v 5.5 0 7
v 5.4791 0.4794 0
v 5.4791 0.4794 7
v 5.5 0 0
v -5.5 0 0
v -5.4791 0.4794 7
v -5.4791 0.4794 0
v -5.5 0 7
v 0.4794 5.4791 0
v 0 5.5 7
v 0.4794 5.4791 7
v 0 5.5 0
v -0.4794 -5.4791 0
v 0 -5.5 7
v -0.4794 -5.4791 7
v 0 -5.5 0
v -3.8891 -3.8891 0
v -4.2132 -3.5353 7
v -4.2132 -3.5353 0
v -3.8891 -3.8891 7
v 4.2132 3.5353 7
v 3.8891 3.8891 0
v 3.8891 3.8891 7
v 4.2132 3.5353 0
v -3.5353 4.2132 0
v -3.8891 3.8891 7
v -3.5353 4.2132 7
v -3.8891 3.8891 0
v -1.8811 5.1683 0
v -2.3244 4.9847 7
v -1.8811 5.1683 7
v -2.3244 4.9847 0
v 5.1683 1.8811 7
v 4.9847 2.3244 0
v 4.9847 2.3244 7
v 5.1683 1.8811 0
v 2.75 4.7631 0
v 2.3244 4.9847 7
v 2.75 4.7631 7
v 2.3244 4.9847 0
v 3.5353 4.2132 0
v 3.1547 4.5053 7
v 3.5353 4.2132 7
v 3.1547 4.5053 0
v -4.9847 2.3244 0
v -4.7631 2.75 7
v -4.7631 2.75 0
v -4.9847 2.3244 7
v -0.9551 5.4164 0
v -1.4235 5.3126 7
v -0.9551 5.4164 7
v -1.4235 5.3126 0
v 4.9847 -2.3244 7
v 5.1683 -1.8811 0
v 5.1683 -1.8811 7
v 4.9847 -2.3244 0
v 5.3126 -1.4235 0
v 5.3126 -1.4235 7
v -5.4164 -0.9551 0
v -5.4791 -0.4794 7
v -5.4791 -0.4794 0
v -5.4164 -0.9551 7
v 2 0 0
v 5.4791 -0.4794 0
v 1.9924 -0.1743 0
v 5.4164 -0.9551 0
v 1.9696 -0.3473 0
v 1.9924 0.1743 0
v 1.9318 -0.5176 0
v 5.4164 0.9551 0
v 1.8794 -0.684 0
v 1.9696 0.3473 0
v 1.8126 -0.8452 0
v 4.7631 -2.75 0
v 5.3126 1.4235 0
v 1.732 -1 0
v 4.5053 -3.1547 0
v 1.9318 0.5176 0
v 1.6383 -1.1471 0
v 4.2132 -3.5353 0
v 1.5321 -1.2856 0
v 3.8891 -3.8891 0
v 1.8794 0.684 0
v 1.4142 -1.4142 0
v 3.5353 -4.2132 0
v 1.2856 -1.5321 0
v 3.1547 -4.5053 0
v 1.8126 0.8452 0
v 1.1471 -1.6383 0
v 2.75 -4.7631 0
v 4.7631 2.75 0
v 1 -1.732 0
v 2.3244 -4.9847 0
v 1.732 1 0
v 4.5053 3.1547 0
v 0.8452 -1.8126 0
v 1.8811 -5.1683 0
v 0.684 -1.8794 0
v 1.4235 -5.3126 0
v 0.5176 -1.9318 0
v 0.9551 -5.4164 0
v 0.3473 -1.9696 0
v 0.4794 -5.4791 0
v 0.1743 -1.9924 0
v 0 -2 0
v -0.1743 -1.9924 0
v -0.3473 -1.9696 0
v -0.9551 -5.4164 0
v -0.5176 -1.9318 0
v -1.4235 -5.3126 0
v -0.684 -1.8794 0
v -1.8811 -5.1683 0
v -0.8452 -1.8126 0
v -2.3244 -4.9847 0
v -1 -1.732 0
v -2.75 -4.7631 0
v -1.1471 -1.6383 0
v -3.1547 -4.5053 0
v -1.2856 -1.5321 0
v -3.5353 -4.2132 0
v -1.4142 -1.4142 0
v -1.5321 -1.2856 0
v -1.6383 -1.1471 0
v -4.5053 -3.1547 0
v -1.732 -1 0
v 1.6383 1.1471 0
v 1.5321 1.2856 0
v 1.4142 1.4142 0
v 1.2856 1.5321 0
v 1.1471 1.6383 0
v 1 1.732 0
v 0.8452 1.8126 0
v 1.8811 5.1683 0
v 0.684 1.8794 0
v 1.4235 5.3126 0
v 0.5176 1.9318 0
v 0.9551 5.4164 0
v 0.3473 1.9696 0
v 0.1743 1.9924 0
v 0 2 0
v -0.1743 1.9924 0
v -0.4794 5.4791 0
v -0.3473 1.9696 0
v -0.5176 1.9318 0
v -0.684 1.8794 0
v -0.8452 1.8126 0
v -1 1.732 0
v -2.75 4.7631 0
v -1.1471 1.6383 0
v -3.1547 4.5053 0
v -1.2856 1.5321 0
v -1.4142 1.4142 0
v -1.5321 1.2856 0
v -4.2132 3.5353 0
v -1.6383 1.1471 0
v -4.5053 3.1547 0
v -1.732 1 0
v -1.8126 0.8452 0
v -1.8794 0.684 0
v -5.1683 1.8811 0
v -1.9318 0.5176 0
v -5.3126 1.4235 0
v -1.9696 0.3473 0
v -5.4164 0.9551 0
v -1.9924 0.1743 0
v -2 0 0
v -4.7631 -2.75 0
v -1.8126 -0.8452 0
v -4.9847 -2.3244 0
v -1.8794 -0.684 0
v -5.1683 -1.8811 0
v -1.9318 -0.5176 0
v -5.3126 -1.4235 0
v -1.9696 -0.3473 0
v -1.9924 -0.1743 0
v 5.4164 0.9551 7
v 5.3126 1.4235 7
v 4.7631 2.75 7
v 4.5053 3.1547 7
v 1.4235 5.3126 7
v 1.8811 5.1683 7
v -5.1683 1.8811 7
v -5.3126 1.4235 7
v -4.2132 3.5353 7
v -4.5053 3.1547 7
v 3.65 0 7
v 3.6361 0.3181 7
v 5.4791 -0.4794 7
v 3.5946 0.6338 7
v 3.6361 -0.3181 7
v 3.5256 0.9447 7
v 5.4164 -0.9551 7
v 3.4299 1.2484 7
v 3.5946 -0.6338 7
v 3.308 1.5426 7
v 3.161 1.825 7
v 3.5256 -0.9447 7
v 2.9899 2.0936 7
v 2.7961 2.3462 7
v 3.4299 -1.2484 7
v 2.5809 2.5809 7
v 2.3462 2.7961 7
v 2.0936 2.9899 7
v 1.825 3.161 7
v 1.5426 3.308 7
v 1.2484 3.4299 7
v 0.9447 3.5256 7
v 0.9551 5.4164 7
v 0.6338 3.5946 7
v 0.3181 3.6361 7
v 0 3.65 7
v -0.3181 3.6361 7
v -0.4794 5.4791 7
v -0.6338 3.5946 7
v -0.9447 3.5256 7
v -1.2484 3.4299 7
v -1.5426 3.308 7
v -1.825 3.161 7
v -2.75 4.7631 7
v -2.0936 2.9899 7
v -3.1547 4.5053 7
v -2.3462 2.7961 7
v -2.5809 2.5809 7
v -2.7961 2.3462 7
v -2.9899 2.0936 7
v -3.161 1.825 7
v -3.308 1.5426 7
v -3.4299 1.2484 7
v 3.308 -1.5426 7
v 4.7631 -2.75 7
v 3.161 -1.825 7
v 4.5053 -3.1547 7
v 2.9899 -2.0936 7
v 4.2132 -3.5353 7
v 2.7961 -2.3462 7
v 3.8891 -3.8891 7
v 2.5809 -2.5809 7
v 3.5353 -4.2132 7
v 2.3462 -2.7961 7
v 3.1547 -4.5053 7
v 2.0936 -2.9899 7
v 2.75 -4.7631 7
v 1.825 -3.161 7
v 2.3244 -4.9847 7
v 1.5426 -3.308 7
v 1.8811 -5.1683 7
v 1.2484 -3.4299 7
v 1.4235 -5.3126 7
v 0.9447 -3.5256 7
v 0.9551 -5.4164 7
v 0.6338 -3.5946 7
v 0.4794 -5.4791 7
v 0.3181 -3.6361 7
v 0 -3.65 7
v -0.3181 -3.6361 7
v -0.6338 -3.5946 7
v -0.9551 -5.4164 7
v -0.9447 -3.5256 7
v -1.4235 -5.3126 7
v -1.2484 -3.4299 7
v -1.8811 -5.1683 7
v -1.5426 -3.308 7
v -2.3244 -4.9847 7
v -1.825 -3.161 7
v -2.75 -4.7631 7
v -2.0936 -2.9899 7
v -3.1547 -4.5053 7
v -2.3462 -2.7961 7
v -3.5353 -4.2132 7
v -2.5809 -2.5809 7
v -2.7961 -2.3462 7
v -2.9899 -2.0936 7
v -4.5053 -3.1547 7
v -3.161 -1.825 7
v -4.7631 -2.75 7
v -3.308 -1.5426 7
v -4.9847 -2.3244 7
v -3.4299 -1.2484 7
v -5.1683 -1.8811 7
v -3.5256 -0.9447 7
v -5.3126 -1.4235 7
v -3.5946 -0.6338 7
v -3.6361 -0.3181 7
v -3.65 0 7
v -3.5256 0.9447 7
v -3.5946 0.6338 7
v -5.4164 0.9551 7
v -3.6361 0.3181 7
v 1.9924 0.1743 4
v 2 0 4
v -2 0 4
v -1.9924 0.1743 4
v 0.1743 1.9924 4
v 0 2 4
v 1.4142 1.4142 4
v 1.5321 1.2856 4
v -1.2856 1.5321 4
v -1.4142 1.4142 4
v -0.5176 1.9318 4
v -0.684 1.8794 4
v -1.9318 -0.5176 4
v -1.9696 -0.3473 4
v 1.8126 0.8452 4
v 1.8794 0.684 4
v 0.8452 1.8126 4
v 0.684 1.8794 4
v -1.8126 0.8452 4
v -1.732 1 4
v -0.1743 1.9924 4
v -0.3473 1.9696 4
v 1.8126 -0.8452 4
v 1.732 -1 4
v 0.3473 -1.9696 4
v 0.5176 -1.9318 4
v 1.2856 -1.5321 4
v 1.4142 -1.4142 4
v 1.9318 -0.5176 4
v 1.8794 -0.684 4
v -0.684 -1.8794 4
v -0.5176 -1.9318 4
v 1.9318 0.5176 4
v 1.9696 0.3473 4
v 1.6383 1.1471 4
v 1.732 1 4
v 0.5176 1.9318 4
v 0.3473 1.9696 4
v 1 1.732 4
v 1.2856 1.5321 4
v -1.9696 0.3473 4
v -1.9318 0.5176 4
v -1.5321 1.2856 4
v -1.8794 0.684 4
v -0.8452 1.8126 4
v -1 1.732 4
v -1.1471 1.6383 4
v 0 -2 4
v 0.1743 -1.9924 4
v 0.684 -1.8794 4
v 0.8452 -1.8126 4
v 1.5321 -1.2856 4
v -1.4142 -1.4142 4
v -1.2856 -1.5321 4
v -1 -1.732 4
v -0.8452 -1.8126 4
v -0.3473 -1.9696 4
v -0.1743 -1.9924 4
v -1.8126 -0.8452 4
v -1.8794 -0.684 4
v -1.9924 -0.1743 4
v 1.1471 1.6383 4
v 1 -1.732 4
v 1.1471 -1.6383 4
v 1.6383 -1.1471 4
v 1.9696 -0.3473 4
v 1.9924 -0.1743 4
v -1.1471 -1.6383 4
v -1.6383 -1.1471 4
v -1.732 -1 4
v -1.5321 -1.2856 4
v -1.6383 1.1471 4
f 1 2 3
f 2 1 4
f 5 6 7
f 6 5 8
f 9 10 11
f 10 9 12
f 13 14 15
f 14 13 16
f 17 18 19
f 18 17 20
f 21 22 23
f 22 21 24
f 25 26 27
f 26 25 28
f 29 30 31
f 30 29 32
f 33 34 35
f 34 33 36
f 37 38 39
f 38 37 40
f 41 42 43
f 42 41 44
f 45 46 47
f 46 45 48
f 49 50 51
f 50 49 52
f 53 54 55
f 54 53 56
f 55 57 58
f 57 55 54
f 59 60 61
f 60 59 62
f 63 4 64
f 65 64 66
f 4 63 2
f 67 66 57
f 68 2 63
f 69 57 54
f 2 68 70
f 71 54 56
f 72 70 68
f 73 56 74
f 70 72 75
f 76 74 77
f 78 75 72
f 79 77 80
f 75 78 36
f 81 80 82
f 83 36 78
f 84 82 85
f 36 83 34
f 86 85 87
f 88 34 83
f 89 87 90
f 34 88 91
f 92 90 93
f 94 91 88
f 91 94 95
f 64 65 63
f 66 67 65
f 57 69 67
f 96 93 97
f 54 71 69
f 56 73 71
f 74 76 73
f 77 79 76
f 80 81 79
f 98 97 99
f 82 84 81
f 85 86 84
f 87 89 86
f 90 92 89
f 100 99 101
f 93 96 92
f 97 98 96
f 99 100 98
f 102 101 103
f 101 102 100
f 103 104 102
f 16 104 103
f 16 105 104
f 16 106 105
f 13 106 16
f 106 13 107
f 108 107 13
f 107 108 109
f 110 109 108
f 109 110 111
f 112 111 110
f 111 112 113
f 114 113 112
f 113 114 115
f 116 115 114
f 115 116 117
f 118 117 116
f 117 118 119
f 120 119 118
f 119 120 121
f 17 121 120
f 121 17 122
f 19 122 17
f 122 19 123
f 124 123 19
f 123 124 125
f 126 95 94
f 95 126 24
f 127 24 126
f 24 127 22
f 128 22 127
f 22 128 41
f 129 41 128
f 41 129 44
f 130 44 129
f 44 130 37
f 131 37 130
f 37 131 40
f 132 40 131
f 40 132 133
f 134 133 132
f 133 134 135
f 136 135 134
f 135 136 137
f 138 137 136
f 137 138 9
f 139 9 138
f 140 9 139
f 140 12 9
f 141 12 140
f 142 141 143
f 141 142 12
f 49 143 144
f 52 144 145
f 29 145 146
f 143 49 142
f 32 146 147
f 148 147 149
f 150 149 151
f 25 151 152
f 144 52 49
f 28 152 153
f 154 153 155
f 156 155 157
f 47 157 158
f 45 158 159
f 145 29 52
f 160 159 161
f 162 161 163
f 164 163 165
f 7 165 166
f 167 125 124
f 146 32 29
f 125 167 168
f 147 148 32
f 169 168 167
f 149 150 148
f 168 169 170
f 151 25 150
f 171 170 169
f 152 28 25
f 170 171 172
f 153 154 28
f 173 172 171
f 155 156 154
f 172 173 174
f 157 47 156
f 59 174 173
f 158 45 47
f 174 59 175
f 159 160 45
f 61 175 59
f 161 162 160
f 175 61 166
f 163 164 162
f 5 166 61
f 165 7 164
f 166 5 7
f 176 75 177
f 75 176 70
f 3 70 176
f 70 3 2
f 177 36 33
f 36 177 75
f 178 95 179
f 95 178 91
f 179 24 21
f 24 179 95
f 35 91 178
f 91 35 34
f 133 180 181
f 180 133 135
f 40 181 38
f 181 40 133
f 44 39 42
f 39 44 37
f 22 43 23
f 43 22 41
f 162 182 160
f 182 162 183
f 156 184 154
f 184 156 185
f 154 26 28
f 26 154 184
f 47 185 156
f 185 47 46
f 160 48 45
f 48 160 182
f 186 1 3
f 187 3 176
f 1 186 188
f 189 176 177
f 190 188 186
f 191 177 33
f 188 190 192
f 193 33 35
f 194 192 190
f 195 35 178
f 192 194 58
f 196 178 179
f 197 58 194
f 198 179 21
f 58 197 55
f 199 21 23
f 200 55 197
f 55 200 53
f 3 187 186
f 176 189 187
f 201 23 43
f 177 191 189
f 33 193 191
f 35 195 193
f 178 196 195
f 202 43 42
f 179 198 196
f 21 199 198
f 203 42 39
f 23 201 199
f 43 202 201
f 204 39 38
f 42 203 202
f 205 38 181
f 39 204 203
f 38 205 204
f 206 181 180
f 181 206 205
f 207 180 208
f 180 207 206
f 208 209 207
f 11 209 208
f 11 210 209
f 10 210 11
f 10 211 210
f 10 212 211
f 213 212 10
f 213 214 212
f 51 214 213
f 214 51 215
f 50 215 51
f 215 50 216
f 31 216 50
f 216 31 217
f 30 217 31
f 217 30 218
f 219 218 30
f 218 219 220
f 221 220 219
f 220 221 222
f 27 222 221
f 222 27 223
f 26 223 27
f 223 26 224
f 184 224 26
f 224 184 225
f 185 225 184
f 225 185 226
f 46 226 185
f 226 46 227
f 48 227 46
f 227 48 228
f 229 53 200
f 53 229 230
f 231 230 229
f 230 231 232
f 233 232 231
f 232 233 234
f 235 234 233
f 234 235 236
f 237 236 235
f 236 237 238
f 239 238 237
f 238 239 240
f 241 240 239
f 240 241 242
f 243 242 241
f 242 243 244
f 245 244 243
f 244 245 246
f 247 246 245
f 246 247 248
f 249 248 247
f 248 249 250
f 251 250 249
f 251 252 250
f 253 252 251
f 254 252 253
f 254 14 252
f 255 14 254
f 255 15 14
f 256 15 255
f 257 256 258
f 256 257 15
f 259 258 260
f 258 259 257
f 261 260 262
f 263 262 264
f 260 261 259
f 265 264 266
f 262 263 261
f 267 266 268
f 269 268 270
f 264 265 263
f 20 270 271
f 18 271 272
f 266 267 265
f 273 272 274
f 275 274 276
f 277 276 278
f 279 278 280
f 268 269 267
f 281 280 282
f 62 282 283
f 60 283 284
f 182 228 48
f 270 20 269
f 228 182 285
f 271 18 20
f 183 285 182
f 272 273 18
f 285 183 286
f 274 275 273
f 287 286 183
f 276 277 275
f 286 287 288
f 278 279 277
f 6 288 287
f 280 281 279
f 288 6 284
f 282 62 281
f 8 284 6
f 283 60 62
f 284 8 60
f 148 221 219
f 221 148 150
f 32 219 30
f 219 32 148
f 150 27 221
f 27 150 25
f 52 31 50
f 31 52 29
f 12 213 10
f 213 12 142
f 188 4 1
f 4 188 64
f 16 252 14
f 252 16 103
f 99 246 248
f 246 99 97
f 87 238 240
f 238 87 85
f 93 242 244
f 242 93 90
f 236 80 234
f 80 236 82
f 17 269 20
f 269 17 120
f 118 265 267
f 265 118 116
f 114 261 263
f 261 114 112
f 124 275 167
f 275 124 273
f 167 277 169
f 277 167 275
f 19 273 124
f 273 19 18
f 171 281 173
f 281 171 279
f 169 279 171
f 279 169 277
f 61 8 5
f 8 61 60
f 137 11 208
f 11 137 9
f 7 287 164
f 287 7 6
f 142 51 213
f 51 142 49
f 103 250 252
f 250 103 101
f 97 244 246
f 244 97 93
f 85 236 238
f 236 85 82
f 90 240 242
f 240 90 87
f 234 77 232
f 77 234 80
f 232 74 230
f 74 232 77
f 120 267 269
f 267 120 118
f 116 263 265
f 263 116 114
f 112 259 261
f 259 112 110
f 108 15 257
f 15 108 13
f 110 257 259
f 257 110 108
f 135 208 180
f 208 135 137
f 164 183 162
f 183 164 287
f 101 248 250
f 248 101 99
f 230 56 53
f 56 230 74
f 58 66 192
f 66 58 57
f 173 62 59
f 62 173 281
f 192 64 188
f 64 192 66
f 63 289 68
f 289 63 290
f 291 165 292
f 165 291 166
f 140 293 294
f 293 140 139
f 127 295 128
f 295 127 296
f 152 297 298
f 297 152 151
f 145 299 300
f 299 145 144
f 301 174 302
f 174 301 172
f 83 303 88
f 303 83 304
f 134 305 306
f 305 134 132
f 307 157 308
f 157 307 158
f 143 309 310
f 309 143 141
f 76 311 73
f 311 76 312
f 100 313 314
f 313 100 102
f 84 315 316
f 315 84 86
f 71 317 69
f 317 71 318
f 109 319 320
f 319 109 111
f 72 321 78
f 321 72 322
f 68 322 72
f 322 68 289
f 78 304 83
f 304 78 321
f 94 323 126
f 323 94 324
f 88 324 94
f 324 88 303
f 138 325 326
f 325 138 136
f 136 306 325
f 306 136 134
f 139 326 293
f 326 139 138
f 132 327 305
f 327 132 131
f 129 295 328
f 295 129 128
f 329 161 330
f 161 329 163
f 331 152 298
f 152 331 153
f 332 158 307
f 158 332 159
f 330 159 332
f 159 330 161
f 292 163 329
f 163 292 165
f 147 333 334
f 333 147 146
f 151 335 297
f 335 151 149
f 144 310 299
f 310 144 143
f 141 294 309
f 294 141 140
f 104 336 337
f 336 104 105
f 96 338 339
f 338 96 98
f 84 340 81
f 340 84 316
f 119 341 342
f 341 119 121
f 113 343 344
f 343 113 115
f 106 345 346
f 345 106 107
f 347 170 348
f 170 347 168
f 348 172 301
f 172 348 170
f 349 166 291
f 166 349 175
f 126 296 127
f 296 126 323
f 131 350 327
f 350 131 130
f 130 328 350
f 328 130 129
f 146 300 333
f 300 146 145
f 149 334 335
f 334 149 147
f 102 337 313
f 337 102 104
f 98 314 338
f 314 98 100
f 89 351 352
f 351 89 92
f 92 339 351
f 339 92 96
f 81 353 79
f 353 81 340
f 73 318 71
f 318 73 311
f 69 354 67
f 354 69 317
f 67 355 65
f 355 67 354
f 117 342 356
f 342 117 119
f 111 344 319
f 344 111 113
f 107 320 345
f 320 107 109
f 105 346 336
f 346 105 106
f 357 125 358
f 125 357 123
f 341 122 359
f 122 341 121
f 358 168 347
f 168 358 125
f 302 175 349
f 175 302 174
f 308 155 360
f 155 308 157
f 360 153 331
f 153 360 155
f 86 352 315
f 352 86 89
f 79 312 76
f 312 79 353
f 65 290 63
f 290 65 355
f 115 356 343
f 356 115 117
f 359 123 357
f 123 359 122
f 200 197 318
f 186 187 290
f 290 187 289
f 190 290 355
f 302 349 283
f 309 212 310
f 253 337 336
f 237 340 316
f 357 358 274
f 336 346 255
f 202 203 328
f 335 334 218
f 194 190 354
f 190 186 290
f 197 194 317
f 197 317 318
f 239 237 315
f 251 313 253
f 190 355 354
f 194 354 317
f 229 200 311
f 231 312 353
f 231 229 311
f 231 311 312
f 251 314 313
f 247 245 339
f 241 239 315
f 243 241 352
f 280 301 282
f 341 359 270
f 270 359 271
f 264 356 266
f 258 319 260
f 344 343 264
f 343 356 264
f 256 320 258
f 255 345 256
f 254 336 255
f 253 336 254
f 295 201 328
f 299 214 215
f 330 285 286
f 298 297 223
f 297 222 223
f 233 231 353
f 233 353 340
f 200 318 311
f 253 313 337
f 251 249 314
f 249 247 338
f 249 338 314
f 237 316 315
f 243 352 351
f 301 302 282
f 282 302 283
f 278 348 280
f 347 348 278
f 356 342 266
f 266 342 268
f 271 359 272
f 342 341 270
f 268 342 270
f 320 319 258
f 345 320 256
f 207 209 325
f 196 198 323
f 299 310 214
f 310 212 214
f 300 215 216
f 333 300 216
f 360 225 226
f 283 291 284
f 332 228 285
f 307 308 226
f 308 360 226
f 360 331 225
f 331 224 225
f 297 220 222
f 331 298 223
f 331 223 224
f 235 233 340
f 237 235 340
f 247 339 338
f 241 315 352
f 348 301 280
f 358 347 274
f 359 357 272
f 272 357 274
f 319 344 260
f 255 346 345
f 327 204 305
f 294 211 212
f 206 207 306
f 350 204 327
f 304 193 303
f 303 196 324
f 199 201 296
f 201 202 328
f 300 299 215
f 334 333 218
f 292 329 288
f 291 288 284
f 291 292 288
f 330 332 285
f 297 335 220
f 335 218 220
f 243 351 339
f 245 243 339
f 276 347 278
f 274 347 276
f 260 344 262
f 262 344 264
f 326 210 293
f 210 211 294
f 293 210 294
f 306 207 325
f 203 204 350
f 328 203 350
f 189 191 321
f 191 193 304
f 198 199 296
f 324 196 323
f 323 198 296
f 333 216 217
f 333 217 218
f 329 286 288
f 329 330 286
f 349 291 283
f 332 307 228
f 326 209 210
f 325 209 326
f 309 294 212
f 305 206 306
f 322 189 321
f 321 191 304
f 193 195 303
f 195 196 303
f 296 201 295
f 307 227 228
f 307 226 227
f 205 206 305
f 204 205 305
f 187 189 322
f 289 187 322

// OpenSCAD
$fn=72;
difference(){
    cylinder(d=11,h=7);
    cylinder(d=4,h=10);
    translate([0,0,4]) cylinder(d1=4,d2=7.3,h=3);
}
